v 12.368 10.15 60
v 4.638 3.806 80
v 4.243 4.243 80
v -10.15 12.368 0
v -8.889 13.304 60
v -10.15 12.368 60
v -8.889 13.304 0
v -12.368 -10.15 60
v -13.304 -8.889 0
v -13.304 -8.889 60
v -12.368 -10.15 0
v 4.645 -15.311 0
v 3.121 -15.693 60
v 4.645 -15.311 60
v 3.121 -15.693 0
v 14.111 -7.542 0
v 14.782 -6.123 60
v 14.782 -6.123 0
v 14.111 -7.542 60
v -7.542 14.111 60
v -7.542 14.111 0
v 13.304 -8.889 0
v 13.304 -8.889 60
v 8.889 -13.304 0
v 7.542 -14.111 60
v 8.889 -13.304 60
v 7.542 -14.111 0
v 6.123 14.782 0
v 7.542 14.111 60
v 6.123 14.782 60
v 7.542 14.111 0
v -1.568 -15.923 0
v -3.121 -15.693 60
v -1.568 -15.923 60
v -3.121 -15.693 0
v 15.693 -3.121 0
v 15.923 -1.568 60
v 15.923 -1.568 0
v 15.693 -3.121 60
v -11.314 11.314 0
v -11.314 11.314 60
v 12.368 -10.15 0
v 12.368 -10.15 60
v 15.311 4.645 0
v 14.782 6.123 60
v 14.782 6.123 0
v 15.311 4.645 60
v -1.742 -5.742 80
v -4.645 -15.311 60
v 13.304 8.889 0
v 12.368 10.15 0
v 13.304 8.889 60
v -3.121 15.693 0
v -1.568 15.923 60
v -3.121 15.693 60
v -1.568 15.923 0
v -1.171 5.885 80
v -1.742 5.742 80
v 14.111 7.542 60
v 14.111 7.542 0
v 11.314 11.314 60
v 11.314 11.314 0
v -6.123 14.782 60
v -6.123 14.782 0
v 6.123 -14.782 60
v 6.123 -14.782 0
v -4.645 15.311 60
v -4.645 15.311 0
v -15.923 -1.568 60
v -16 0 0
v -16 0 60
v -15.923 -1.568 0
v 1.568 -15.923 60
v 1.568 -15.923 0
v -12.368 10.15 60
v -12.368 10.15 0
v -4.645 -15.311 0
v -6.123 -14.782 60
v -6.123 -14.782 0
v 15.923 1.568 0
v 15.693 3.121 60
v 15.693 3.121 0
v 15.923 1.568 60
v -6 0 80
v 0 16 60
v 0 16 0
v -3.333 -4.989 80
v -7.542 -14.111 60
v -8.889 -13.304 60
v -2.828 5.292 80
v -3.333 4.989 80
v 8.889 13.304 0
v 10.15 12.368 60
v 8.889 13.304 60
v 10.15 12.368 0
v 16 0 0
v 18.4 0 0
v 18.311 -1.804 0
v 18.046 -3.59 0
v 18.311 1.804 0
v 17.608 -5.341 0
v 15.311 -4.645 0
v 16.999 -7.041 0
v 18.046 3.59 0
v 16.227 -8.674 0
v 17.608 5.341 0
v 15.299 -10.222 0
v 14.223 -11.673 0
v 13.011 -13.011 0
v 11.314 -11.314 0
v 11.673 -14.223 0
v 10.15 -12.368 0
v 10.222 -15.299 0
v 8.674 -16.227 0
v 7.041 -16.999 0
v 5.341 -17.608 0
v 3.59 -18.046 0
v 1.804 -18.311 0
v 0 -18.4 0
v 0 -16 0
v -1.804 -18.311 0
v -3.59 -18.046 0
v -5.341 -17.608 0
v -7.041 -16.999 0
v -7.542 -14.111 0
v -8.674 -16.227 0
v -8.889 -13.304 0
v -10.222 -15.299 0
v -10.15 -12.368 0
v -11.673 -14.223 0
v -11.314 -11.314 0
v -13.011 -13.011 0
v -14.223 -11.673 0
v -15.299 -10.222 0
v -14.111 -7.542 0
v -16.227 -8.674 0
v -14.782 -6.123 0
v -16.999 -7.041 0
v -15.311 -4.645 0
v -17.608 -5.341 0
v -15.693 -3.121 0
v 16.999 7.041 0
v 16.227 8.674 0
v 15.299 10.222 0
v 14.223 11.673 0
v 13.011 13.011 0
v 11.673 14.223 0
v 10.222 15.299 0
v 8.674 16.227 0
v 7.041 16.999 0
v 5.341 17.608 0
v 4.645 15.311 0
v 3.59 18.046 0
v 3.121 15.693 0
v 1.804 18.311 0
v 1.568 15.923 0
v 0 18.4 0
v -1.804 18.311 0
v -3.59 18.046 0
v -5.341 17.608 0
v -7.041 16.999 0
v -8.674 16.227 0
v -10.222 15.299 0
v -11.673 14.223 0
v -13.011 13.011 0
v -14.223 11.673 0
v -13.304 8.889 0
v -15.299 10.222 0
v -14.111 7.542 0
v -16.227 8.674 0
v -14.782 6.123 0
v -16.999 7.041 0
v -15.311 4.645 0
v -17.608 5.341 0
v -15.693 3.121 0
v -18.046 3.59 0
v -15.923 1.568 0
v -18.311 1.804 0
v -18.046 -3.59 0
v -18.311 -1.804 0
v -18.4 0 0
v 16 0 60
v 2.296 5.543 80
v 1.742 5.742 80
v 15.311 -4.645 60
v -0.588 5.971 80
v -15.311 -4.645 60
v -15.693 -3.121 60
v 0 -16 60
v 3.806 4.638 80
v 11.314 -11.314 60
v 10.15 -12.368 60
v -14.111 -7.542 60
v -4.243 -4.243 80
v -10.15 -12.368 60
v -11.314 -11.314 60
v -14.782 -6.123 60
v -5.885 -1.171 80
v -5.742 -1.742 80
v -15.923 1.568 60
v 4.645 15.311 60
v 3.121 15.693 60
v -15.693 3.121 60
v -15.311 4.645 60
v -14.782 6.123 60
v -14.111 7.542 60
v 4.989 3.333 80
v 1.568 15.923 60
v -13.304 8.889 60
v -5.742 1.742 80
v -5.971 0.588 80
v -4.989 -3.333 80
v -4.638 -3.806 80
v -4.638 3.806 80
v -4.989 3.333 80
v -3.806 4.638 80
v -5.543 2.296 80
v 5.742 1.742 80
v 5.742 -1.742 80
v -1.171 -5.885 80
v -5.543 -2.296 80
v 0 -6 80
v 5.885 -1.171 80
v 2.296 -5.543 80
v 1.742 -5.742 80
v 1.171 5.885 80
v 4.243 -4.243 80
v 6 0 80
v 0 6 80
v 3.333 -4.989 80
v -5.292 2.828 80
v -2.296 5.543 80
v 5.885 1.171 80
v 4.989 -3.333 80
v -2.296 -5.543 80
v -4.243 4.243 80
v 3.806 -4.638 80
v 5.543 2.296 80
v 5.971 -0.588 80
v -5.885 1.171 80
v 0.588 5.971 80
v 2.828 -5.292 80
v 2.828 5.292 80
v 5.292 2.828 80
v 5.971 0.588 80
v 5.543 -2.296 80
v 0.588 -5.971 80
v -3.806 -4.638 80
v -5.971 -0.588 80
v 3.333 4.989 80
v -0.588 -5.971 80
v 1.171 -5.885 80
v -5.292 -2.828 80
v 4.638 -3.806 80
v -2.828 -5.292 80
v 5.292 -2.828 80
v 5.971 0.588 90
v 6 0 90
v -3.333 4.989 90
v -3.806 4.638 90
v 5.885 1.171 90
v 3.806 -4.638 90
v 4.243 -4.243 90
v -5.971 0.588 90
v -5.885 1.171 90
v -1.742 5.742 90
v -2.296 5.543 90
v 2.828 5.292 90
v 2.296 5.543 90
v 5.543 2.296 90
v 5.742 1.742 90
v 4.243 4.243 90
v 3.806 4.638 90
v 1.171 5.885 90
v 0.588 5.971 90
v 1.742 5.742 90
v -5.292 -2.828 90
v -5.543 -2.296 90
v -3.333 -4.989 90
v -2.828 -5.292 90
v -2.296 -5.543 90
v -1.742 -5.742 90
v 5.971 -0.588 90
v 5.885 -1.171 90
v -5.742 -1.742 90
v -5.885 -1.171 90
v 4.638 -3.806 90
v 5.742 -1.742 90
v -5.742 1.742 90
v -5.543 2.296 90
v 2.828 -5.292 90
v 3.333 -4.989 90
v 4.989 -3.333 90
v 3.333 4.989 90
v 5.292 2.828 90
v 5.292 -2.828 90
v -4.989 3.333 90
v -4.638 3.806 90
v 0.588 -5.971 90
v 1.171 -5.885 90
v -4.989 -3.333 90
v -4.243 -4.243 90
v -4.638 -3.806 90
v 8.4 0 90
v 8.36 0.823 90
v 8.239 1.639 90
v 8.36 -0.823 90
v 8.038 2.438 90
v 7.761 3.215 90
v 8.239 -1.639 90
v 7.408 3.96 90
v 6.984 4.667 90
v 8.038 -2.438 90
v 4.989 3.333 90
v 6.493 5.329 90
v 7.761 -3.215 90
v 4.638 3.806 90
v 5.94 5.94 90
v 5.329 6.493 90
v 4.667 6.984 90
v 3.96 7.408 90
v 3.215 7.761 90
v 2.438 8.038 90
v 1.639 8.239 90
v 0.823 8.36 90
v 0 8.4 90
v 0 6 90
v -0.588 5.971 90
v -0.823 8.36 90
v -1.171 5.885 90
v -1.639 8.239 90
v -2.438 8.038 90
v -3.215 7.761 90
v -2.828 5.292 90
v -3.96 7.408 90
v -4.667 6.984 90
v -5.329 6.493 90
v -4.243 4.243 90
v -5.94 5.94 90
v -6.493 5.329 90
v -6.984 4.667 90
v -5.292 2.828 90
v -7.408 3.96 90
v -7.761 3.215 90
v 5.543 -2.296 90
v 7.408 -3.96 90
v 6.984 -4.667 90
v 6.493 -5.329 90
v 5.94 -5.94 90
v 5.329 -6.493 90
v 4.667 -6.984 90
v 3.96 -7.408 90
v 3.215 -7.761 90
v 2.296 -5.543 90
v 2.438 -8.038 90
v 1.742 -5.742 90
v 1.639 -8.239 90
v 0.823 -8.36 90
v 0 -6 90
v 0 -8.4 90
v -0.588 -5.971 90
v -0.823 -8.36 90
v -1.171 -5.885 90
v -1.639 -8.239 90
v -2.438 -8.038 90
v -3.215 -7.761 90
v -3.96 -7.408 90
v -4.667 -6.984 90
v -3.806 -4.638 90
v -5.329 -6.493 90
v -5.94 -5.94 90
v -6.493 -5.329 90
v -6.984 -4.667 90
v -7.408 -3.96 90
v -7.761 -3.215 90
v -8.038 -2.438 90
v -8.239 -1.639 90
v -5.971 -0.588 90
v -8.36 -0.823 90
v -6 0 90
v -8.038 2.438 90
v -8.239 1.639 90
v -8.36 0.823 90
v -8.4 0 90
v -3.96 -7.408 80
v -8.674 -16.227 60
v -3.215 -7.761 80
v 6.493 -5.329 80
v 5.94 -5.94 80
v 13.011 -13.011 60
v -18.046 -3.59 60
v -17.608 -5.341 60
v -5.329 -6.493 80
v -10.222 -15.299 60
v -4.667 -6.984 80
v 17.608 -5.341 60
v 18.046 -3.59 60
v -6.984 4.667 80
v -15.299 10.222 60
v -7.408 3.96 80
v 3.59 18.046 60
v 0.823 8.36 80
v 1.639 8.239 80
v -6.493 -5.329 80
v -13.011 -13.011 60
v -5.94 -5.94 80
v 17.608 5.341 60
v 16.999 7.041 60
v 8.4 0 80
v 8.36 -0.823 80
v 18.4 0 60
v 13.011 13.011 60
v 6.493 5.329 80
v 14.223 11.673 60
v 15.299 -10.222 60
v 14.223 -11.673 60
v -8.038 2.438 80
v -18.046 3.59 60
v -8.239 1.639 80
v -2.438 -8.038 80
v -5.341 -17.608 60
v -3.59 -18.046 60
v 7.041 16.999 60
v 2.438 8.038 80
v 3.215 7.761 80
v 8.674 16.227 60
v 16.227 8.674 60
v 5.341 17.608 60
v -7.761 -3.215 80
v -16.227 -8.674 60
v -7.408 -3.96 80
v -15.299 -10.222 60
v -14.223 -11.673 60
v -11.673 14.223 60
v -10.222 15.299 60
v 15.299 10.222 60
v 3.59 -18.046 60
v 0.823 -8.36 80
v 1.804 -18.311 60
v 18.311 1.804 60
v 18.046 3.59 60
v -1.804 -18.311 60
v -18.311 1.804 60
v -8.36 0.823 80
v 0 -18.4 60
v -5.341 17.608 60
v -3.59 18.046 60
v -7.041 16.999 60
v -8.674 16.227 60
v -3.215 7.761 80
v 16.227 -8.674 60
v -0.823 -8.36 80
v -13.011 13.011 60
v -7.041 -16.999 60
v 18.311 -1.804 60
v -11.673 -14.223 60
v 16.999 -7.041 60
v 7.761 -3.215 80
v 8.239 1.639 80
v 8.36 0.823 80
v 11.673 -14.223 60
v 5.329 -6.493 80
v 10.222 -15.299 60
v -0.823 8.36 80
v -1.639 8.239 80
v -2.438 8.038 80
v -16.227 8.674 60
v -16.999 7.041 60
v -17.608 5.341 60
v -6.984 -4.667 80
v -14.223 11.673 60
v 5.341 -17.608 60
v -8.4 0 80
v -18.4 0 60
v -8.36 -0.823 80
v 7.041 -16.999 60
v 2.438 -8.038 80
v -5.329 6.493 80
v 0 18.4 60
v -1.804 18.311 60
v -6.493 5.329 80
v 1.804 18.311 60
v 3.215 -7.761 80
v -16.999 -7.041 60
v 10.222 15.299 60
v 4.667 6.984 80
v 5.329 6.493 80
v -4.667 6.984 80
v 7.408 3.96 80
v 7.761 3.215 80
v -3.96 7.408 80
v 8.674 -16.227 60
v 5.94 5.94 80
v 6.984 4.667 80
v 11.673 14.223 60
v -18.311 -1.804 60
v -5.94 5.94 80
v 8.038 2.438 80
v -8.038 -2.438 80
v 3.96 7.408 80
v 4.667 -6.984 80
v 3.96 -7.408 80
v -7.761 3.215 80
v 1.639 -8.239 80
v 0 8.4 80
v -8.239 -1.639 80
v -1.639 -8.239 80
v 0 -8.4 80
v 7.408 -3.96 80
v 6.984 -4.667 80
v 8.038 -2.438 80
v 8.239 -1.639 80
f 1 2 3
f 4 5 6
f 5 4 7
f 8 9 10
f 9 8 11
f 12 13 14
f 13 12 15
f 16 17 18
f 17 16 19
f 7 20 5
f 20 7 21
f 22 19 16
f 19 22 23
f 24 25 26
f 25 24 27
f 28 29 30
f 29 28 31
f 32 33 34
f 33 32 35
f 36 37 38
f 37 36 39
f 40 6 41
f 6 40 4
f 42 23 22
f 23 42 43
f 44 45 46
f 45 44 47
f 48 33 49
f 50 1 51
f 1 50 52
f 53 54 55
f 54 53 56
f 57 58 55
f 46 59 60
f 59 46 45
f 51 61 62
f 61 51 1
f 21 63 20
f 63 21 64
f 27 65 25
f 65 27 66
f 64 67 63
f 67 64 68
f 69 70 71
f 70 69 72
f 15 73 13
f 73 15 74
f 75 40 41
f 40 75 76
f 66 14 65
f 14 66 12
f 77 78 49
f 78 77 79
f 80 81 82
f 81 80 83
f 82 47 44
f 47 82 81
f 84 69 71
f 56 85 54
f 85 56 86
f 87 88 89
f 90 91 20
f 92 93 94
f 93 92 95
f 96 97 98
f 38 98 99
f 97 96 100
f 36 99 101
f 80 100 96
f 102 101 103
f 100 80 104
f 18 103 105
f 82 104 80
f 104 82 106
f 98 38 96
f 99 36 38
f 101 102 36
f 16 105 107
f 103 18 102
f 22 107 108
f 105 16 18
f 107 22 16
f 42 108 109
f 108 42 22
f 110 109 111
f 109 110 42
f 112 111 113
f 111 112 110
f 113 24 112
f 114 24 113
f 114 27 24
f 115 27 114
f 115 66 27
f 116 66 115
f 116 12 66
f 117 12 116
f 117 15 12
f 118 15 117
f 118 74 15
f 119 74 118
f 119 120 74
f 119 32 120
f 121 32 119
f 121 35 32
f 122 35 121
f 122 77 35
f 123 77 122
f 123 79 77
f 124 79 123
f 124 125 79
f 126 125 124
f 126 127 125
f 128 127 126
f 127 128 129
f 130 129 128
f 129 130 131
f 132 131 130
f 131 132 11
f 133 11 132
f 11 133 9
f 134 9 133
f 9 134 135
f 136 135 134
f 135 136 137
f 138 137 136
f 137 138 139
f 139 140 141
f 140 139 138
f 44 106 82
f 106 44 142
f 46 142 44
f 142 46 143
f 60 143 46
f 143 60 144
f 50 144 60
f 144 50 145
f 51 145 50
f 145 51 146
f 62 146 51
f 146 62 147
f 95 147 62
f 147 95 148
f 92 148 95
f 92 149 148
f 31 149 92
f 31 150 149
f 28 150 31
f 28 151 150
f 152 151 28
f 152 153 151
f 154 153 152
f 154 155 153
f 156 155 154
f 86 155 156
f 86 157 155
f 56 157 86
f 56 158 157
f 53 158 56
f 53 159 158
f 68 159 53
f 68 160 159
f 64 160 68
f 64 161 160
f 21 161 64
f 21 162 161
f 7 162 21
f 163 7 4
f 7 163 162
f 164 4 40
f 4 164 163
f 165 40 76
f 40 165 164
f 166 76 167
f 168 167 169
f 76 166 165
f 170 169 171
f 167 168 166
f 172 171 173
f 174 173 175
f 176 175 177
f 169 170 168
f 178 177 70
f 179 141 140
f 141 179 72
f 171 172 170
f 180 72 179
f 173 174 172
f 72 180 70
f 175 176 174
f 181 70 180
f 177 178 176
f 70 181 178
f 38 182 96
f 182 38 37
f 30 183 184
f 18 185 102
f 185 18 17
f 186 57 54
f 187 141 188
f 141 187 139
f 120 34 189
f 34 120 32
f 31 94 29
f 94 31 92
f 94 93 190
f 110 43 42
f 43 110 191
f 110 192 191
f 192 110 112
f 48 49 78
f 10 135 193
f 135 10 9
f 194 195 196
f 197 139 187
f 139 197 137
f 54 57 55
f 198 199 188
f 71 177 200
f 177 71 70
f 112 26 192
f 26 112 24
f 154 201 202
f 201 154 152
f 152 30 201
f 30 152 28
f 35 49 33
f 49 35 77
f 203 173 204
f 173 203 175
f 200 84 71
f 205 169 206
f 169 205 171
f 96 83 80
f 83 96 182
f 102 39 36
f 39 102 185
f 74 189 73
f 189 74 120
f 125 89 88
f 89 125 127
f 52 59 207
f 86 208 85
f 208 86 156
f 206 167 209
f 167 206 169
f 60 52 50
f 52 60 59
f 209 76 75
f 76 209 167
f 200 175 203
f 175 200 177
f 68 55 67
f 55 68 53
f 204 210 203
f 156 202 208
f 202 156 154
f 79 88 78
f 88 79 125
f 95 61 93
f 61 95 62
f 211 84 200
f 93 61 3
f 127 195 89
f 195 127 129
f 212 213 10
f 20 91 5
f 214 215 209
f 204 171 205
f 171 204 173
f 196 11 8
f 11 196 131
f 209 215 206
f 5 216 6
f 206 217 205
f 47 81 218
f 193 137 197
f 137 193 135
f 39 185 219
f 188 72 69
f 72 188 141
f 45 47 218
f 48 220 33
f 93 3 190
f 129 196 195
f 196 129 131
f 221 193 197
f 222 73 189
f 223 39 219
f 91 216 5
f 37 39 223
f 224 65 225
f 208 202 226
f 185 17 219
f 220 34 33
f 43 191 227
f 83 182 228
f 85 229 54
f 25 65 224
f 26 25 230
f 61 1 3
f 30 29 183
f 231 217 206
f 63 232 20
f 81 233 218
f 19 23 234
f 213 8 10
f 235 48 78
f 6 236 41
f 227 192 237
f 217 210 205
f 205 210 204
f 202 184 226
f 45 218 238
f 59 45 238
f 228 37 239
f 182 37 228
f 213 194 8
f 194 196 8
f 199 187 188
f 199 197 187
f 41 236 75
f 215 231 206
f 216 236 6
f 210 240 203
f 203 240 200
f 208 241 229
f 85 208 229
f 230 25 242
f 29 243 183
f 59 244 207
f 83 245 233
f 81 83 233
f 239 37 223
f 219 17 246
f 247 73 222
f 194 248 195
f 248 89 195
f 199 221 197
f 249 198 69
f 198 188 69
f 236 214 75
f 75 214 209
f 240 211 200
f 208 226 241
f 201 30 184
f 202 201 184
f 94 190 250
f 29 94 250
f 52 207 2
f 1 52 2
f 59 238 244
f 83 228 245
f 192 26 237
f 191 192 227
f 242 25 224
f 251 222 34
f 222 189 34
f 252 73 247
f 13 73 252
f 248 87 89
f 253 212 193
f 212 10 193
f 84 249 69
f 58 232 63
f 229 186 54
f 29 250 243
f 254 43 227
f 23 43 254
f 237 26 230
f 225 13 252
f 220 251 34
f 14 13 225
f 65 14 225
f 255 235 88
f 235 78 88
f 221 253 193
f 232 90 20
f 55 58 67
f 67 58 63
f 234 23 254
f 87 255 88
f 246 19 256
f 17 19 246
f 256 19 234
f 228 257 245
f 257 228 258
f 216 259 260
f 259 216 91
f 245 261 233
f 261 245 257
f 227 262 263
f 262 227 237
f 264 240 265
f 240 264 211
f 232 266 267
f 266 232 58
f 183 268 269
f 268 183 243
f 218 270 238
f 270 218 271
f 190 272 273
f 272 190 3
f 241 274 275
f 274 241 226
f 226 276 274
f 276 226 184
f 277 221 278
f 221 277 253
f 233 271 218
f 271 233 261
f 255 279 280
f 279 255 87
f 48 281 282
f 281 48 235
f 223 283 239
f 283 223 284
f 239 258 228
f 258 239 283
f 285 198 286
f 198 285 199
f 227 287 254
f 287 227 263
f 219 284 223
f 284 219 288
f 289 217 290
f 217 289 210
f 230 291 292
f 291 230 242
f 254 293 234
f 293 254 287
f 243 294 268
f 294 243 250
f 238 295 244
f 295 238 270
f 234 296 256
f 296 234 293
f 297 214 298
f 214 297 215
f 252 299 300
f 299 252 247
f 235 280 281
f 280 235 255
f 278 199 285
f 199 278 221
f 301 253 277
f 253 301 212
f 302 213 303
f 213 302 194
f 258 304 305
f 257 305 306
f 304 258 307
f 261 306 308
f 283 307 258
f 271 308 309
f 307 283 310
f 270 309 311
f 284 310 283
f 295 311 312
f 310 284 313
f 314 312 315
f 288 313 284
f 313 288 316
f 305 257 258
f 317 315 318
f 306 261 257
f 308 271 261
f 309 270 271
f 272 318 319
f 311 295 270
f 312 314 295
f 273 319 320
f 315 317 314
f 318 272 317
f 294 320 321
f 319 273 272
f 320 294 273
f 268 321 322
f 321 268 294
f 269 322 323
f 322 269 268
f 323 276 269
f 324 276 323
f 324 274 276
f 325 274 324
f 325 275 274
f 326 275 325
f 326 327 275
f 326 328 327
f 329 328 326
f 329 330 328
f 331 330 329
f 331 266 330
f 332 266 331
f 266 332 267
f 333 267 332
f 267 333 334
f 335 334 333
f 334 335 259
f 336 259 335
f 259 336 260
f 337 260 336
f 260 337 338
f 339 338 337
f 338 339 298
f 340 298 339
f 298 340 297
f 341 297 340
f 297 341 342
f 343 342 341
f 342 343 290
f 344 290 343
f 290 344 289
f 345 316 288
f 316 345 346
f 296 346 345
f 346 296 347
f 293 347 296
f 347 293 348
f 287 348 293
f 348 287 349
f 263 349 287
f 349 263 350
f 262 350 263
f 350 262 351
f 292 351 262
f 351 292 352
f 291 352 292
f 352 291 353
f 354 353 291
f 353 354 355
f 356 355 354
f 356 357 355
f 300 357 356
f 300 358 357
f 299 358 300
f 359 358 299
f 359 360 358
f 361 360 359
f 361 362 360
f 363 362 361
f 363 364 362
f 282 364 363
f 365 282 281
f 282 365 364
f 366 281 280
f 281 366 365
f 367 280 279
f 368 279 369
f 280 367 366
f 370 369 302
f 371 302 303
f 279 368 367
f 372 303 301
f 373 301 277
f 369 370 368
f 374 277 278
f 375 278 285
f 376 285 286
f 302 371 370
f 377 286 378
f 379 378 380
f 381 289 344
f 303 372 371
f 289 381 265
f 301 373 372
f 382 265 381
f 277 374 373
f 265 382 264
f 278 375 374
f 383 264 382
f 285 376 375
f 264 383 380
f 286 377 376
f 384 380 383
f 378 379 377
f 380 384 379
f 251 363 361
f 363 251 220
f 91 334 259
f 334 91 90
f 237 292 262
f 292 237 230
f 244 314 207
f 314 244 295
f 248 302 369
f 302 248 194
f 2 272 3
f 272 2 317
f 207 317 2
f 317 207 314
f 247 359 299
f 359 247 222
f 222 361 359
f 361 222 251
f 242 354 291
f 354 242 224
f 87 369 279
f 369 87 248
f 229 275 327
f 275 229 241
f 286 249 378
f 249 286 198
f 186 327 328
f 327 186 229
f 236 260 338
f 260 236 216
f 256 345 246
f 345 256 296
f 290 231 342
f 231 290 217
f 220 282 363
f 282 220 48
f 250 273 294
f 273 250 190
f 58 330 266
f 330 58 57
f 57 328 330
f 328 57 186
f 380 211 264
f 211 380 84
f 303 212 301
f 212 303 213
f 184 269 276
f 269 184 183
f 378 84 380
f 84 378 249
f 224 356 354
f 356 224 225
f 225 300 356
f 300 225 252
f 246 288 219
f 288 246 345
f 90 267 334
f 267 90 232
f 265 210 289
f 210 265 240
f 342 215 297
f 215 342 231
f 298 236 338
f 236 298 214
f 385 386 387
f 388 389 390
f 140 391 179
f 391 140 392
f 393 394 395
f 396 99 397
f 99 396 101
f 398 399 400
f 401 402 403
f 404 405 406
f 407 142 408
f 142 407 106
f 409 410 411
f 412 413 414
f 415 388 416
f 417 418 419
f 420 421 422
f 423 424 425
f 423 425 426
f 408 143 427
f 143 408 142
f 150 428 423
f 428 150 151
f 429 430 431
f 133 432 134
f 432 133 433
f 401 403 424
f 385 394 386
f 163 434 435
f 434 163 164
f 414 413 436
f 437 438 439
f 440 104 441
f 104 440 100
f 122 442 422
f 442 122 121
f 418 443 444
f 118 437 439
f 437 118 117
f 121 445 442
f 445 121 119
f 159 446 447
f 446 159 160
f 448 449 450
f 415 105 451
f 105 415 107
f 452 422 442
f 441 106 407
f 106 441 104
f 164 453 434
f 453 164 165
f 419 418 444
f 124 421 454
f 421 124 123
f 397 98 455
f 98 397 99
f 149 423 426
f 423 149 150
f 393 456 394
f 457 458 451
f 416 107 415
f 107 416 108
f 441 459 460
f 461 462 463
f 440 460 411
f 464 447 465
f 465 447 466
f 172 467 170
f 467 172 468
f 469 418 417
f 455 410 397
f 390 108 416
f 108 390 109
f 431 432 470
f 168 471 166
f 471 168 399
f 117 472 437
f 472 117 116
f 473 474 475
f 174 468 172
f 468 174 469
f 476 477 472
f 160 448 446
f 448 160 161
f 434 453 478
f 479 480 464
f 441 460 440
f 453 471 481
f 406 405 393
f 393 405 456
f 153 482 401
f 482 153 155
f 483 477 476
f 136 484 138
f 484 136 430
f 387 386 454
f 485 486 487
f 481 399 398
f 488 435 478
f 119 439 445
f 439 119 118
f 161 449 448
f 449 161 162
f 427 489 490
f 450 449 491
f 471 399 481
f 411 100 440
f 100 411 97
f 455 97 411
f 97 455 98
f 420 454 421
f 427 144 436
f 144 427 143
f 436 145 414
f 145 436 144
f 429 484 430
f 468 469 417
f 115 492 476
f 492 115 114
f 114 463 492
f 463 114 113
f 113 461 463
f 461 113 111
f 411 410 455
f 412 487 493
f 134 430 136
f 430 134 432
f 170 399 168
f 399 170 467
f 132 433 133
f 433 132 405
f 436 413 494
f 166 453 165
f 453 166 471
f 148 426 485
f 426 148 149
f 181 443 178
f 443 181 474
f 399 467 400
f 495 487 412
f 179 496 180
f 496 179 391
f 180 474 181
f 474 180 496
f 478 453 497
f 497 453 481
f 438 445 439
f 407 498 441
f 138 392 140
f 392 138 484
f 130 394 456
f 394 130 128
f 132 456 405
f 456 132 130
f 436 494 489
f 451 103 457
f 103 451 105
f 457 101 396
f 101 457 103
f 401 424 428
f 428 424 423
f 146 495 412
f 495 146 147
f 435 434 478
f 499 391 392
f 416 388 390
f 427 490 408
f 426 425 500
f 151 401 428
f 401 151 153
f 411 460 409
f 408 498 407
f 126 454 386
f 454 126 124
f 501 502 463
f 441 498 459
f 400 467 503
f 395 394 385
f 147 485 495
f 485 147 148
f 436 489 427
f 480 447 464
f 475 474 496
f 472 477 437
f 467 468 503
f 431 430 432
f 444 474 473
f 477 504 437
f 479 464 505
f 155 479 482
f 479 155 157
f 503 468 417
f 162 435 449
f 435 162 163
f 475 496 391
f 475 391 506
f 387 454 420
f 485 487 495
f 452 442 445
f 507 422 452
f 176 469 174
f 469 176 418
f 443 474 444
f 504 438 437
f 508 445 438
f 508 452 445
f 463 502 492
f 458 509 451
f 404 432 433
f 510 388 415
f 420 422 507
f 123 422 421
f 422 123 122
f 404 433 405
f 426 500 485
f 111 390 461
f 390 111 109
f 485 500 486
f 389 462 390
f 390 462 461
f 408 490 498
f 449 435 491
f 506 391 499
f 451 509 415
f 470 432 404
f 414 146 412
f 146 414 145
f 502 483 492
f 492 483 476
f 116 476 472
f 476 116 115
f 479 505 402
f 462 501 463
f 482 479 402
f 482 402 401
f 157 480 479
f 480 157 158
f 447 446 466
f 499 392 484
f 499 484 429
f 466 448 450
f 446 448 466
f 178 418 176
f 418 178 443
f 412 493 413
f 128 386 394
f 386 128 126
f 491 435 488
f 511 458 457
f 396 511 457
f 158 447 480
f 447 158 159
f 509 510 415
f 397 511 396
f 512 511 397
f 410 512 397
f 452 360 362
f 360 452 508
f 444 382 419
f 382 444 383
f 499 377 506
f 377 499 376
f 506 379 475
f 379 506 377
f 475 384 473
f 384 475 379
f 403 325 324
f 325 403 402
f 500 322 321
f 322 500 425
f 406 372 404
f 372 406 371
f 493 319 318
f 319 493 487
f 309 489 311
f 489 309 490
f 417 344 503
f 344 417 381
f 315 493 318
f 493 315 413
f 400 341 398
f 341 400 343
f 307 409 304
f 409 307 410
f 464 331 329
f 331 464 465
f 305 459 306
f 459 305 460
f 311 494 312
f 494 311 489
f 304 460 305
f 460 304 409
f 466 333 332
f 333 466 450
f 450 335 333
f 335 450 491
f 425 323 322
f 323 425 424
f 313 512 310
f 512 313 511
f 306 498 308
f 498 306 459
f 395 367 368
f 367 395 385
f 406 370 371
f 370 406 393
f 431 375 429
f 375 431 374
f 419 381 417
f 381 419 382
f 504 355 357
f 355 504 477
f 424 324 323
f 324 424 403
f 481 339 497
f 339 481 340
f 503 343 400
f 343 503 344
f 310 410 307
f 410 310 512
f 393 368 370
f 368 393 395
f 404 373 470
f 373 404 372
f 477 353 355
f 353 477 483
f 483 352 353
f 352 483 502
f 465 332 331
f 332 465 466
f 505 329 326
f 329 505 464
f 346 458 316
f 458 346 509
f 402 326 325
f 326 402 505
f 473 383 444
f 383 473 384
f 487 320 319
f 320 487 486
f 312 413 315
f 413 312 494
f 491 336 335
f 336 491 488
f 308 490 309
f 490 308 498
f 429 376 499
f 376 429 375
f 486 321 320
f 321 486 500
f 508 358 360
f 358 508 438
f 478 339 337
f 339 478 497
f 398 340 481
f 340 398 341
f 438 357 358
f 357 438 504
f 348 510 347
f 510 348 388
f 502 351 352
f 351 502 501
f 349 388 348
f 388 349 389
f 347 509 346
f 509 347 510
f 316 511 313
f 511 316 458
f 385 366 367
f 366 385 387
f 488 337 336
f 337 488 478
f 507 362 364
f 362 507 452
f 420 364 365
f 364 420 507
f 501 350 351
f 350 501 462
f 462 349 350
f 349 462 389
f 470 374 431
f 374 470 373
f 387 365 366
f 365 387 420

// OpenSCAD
$fn=64;

$id=12;
$add = 0.6*2*4;
difference() {
    union() {
        hull() {
            cylinder(h=60, d=32+$add);
            translate([0,0,70]) cylinder(h=10, d=$id + $add);
        }
        translate([0,0,80]) cylinder(h=10, d=$id + $add);
    }
    union() {
        hull() {
            cylinder(h=60, d=32);
            translate([0,0,70]) cylinder(h=10, d=$id);
        }
        translate([0,0,80]) cylinder(h=10, d=$id);
    }
}
